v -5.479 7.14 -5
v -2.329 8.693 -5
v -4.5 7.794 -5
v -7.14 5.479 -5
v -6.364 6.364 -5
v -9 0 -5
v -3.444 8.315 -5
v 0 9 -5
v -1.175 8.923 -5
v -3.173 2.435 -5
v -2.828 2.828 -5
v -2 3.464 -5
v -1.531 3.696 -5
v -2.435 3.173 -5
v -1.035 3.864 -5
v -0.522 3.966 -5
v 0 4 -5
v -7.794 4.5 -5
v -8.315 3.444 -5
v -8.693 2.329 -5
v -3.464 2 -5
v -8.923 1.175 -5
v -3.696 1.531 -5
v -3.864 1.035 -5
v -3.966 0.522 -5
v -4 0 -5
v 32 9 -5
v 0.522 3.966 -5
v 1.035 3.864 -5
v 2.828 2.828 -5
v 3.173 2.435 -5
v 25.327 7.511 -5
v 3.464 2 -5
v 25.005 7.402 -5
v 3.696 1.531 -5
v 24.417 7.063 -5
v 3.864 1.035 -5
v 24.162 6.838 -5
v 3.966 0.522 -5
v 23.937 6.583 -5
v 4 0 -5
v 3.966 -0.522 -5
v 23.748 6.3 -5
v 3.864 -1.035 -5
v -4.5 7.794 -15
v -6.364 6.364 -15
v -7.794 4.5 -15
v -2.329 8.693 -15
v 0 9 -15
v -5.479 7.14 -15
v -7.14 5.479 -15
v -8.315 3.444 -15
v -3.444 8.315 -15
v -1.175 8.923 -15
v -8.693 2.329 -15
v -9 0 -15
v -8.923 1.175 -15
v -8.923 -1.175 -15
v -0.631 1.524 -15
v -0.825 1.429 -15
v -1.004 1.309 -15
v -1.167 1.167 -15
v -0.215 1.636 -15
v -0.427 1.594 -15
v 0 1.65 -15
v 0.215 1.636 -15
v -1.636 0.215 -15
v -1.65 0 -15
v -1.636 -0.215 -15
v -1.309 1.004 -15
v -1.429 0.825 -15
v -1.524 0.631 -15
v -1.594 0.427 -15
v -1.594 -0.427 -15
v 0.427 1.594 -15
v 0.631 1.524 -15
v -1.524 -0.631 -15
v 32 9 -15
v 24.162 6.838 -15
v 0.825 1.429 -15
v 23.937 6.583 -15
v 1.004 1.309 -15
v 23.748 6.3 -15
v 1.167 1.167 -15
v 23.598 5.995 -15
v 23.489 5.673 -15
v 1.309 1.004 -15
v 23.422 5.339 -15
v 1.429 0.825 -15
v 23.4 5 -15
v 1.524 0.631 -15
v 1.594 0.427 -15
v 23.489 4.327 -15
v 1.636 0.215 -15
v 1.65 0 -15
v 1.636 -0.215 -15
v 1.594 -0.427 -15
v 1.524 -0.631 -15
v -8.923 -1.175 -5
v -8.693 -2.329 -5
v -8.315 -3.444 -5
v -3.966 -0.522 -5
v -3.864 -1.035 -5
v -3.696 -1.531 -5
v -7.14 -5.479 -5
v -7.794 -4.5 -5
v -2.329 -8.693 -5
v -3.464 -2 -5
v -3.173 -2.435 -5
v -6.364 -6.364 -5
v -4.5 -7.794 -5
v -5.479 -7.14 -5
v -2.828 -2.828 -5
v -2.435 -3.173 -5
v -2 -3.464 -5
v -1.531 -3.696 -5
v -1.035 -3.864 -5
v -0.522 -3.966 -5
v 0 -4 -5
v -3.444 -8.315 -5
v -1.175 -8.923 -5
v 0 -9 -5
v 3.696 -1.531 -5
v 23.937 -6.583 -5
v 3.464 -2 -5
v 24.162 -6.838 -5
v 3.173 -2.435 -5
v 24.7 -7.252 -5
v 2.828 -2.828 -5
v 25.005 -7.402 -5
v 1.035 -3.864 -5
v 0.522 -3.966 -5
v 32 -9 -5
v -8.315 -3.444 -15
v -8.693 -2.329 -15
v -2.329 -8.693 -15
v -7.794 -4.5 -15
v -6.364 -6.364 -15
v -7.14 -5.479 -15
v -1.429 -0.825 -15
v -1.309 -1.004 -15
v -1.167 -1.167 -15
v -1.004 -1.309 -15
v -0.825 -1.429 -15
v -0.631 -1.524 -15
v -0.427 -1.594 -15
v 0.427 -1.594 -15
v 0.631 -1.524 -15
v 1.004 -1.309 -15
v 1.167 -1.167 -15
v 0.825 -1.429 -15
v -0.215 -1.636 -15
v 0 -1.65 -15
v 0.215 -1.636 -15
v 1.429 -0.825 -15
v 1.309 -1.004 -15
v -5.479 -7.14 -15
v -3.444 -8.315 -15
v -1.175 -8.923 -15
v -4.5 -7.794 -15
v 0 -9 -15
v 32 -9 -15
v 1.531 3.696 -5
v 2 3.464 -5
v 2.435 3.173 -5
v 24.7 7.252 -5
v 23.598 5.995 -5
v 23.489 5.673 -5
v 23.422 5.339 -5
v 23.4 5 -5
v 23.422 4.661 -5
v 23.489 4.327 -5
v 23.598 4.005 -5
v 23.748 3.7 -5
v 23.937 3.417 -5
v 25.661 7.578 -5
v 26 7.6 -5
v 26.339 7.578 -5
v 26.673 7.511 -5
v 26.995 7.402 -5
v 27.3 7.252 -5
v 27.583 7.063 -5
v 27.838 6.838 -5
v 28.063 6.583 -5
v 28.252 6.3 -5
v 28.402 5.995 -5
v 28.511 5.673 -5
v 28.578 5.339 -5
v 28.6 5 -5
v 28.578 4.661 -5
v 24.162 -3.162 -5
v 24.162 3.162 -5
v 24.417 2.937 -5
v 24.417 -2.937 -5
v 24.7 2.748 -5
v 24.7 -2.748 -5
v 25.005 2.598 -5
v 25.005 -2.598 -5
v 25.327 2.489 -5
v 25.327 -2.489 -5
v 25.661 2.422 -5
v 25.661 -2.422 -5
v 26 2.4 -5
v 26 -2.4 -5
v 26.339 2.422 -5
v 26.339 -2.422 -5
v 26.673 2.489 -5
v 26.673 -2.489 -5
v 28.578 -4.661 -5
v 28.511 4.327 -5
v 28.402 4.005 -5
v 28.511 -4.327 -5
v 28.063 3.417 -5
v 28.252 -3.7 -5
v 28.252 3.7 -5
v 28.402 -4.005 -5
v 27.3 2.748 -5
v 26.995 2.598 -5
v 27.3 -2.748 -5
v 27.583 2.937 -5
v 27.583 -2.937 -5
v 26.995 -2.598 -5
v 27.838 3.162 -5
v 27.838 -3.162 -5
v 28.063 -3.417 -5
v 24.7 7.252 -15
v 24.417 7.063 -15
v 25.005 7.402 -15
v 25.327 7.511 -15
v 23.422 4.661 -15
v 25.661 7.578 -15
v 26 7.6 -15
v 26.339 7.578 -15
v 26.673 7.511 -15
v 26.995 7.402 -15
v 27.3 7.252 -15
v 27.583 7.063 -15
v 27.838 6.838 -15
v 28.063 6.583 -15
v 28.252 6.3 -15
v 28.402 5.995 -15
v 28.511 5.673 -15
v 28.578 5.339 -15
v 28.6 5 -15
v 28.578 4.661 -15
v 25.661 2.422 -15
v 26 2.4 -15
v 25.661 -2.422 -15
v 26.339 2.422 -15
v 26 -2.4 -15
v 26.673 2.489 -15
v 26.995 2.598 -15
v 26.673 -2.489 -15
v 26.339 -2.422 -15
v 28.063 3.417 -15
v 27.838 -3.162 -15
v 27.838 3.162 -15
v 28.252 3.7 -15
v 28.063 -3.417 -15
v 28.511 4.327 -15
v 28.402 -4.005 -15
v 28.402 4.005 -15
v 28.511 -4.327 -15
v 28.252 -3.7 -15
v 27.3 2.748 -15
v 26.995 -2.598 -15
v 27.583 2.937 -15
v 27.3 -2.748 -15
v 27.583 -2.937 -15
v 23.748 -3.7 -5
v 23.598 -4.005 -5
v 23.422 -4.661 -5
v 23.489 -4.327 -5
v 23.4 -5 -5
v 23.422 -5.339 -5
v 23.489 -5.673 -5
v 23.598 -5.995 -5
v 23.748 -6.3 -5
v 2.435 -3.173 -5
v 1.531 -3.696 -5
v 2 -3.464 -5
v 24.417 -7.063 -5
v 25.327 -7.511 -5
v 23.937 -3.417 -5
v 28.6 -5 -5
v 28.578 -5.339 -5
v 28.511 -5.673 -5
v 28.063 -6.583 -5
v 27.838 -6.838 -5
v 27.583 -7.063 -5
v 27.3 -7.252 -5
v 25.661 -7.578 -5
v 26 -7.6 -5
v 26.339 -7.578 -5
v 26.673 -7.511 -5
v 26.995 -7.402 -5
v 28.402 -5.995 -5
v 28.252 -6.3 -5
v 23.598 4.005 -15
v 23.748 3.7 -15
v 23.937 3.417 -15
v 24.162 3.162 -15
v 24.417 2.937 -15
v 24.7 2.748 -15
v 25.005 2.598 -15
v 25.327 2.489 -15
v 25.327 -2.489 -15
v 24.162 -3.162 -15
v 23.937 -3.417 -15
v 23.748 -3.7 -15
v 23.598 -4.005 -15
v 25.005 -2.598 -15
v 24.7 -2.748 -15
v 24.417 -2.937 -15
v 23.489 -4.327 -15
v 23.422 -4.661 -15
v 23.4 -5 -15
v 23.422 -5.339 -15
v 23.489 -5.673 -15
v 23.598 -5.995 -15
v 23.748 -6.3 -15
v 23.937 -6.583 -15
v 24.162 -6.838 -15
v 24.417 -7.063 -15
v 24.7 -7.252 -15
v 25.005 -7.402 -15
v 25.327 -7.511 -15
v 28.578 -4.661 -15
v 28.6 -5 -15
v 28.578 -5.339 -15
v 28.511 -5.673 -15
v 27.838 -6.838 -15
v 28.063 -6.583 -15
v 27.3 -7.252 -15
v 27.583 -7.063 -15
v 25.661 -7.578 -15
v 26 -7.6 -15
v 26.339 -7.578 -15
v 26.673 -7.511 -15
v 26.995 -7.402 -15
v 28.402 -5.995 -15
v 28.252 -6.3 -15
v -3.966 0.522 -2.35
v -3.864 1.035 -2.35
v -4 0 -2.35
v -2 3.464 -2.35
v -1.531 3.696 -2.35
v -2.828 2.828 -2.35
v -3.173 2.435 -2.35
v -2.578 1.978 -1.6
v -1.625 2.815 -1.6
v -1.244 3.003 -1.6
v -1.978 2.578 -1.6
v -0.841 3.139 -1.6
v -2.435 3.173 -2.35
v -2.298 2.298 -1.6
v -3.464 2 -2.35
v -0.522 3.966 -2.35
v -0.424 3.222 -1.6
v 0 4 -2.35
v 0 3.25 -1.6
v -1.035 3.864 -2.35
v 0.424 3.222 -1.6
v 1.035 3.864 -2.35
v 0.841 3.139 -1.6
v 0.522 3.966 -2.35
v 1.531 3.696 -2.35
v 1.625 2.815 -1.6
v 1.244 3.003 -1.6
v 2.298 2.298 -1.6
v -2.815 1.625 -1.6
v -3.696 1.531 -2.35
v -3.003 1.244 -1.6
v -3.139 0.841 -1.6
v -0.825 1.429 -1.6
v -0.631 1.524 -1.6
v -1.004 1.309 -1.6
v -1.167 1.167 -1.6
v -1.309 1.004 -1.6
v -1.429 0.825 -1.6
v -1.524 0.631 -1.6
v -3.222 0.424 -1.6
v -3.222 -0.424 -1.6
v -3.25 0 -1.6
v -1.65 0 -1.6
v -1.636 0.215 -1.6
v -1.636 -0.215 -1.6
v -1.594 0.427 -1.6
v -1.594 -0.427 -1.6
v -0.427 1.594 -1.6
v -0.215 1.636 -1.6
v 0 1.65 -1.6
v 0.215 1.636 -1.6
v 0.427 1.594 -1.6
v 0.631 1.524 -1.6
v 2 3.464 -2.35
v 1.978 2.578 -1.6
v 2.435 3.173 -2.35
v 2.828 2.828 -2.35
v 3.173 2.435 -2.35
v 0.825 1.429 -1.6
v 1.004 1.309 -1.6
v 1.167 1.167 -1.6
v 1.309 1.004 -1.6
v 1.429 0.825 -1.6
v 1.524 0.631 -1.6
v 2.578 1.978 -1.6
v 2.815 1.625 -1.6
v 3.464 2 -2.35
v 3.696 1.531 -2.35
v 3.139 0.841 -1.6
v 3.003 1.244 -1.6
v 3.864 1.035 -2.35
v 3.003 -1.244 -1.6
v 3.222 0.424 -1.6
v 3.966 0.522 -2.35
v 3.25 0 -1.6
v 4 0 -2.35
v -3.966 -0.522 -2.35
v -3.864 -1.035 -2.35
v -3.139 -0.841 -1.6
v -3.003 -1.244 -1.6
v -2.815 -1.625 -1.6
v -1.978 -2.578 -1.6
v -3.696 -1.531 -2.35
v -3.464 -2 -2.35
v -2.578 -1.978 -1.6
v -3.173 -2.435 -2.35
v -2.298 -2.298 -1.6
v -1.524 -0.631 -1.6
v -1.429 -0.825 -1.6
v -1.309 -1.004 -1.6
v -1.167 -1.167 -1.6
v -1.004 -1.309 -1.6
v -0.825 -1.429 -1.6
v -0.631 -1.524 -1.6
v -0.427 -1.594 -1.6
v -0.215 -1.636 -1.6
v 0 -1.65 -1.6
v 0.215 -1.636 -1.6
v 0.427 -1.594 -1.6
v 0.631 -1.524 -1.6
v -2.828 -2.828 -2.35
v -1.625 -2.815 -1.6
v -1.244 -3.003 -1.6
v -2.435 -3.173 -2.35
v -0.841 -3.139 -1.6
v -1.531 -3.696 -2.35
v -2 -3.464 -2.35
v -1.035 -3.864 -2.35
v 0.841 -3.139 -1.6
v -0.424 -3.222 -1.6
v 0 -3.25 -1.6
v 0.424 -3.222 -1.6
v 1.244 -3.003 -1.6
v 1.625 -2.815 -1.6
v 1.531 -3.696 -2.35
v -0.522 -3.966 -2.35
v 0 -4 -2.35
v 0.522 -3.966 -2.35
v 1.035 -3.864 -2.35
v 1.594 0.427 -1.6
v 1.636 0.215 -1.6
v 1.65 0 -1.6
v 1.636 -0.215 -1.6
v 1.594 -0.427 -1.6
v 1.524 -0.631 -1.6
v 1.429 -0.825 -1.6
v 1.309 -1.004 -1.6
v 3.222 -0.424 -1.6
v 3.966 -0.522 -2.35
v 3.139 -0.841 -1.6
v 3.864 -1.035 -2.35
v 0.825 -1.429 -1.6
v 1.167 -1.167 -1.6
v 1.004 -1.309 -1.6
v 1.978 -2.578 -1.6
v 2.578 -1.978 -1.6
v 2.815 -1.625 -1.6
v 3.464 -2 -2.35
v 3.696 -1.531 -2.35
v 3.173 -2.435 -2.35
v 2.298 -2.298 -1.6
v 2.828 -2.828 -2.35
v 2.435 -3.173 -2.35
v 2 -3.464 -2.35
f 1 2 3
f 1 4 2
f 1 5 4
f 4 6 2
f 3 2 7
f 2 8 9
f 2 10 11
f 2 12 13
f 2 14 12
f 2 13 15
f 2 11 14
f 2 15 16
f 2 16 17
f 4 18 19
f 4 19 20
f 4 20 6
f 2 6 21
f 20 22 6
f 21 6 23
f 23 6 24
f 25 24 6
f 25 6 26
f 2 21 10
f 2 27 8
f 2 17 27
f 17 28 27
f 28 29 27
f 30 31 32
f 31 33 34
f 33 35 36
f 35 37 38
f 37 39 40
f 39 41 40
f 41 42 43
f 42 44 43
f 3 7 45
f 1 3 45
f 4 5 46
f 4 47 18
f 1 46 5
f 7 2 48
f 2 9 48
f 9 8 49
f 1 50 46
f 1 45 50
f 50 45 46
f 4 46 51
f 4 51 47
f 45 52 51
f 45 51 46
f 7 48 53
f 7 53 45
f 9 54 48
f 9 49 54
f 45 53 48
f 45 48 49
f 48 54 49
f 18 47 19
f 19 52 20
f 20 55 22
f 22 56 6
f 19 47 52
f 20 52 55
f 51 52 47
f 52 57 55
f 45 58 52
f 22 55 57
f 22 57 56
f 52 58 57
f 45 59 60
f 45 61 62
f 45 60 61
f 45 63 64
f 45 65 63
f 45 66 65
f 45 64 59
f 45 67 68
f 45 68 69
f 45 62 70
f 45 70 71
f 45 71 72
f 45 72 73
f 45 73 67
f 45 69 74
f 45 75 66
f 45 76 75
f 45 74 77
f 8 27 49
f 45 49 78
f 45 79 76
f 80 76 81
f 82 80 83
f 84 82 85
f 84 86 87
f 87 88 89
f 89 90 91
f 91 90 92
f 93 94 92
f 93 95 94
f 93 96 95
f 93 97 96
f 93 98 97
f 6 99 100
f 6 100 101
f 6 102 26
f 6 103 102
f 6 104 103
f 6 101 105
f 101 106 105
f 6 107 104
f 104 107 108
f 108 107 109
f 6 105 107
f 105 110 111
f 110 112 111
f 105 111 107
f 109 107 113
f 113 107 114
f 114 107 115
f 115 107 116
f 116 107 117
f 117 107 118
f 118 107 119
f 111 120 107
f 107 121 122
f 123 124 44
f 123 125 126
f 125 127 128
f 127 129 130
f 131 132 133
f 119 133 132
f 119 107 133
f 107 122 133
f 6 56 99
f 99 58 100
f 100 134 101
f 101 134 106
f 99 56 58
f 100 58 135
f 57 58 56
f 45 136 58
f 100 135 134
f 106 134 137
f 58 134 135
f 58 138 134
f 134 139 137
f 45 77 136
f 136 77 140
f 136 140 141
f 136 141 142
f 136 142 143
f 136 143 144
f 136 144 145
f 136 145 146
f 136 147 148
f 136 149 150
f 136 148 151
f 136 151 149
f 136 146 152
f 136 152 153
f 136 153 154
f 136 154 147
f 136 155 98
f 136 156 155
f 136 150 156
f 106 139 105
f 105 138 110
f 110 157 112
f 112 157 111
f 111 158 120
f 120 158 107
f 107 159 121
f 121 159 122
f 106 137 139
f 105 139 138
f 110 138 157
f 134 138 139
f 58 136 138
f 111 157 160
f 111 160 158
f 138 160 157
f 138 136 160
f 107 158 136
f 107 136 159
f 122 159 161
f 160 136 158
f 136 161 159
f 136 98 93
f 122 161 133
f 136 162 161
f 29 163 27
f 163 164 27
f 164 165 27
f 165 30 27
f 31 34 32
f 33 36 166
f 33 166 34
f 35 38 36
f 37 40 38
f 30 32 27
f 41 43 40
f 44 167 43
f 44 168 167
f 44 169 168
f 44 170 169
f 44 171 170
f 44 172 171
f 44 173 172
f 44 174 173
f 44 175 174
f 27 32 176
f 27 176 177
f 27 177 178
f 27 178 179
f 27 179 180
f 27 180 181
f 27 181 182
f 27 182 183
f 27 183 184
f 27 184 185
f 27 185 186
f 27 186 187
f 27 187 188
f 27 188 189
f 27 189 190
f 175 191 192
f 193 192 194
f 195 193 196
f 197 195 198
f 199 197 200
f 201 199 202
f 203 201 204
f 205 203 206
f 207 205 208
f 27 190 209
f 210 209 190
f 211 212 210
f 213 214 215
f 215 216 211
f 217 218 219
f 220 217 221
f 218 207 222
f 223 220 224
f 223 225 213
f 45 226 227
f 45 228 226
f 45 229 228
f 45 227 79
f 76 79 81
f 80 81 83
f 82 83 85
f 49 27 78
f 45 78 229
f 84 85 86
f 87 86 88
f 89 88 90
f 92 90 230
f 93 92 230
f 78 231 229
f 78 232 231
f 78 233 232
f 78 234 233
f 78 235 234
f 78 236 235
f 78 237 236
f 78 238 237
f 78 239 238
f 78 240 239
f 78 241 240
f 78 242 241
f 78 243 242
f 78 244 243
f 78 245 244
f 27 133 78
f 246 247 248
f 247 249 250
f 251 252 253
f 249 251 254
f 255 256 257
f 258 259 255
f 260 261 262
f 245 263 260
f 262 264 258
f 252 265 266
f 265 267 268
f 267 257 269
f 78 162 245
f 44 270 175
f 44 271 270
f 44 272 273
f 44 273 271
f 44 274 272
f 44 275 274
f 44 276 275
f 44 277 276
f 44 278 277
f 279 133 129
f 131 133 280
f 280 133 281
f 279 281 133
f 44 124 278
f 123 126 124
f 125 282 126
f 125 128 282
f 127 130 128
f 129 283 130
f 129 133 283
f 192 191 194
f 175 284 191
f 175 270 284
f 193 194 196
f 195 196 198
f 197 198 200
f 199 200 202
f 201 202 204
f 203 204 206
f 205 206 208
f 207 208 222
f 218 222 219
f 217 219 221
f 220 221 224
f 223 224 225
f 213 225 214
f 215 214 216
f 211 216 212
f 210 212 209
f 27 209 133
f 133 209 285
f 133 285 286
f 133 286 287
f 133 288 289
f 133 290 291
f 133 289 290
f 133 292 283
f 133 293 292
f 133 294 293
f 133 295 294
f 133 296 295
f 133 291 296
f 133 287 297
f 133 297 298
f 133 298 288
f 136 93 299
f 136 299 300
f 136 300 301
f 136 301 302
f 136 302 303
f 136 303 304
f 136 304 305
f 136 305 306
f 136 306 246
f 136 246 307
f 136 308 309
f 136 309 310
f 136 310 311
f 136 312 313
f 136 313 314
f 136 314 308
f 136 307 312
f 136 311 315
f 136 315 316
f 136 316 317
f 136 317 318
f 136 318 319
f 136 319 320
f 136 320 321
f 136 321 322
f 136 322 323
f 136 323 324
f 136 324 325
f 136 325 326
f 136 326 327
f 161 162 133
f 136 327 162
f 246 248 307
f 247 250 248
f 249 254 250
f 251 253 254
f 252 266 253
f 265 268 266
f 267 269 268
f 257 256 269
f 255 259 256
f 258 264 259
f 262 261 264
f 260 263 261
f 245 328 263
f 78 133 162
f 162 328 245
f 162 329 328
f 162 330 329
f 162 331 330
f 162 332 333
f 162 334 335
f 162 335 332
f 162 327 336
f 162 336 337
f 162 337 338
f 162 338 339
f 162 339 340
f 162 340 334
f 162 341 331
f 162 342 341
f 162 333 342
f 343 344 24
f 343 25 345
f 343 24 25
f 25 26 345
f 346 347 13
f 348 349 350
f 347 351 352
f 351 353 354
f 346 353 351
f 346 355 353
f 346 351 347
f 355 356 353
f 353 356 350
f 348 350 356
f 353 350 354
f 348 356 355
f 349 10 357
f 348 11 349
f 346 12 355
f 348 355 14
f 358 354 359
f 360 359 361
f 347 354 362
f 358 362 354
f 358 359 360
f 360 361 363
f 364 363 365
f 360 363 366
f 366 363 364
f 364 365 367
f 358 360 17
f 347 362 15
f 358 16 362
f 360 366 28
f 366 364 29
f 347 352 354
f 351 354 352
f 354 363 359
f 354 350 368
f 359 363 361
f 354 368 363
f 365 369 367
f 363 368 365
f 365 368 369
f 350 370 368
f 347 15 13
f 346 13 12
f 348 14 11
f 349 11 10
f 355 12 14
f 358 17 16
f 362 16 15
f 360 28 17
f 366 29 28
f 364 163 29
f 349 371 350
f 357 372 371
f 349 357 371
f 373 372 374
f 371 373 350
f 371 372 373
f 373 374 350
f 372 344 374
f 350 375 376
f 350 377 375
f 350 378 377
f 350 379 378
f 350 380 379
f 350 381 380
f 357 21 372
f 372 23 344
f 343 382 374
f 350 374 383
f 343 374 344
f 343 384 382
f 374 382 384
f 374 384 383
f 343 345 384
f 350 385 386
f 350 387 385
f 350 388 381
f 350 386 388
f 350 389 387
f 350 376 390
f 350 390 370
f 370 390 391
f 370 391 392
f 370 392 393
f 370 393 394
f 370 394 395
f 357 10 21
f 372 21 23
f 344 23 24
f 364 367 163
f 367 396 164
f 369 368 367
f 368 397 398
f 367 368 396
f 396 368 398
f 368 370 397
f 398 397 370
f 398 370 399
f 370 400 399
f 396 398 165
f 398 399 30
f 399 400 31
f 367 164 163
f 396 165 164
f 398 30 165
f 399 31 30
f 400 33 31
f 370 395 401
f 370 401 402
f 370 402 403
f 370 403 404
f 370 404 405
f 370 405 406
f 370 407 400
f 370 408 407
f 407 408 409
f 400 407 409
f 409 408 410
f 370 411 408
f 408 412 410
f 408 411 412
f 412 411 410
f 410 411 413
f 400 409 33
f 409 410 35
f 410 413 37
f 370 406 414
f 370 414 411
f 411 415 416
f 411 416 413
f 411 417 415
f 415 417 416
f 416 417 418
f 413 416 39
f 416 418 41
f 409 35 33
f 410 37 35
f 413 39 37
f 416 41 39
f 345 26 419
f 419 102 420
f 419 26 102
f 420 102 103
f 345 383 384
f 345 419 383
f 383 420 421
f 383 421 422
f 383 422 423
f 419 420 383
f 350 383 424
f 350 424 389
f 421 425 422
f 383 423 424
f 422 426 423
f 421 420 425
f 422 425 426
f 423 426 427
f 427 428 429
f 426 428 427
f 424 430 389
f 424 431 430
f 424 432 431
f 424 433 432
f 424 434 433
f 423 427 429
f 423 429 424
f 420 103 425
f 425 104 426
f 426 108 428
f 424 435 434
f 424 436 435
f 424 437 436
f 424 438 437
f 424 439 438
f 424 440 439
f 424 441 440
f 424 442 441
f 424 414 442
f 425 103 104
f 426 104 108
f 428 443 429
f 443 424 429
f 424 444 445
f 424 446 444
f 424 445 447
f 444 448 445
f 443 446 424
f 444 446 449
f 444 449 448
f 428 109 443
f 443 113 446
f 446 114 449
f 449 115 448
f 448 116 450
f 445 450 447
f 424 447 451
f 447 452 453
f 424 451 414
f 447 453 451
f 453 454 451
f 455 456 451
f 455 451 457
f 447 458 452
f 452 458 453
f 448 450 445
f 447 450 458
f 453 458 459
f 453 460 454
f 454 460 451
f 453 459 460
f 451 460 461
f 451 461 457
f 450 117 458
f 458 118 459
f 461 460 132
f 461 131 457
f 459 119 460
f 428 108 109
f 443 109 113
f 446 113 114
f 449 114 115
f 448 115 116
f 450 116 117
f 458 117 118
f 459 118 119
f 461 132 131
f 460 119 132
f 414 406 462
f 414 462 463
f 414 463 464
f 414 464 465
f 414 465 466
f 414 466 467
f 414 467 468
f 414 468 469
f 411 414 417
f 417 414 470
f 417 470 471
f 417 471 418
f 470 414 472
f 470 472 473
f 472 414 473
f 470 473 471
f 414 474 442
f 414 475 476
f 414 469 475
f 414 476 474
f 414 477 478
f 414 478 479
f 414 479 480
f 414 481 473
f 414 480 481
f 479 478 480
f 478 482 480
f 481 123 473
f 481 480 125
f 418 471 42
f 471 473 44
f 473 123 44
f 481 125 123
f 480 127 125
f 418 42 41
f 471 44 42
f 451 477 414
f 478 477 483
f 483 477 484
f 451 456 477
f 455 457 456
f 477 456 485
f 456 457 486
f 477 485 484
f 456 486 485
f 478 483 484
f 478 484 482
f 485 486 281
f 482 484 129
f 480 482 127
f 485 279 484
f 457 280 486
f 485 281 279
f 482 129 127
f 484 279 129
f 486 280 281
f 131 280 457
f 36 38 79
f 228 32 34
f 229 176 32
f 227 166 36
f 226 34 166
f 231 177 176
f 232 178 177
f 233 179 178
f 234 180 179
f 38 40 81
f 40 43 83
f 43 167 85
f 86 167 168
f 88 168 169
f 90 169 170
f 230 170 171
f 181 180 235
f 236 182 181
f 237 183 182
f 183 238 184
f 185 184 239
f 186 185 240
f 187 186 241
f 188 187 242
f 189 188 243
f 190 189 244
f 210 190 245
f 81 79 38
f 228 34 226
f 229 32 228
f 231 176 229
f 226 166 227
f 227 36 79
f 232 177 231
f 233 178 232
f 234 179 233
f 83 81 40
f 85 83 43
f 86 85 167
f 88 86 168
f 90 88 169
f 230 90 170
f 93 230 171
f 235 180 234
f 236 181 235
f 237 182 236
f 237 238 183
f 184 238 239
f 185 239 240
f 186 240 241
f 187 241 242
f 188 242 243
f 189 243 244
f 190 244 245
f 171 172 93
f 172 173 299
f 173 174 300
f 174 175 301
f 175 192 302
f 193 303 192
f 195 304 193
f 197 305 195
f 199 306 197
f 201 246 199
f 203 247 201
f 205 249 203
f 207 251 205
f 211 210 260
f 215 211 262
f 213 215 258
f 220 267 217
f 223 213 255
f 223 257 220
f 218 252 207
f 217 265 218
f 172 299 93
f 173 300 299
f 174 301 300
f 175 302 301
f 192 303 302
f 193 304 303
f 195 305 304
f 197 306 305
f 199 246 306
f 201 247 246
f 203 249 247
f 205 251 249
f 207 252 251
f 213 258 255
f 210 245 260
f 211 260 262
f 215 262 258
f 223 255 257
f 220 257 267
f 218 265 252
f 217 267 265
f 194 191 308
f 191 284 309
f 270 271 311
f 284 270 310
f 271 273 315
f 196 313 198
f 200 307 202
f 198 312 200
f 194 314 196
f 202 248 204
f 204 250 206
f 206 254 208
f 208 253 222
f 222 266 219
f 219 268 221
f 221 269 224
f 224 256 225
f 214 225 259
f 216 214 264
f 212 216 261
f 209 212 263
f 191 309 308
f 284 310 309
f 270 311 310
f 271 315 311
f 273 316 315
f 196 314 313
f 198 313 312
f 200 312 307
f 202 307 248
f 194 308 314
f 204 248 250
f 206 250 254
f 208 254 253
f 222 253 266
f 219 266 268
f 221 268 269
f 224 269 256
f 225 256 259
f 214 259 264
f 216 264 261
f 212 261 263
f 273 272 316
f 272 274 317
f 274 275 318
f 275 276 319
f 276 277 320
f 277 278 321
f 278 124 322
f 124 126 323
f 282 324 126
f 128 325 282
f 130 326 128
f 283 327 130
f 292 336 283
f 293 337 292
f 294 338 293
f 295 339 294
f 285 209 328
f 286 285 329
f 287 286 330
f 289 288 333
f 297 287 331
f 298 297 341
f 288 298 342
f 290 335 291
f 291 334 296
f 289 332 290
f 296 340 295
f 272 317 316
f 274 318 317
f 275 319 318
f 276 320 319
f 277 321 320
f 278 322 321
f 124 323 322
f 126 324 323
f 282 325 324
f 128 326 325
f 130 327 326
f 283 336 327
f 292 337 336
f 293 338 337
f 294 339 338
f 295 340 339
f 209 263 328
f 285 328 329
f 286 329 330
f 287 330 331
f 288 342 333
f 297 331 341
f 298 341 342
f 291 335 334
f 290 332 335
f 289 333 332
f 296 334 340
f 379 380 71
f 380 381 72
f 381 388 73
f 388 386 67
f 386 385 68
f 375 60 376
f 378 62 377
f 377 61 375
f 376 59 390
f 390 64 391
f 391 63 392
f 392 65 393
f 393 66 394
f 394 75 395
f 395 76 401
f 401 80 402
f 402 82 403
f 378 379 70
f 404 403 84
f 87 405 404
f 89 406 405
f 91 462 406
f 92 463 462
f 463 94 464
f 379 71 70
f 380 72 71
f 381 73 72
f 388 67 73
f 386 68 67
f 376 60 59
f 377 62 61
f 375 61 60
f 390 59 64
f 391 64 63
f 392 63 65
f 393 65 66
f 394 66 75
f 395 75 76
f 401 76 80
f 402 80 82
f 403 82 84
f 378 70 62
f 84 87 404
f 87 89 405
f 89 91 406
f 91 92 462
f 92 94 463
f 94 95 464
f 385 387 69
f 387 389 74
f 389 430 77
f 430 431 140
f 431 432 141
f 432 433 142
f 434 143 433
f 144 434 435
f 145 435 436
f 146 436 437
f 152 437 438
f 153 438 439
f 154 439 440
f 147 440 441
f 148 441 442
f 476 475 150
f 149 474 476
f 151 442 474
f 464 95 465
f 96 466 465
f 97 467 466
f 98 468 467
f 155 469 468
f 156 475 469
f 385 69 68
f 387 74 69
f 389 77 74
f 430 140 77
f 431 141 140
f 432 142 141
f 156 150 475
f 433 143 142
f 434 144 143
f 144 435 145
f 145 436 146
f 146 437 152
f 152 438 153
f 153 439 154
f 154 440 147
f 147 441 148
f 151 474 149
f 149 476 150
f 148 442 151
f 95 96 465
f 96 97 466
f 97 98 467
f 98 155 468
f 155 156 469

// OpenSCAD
// Die arm for an M4 set-screw die (2.0 mm socket), for thick cardstock. Tap M4 through.
include <../cad/punch_rig_v3_005.scad>
PART = "arm_print";
DIE_TAP = 3.3;
